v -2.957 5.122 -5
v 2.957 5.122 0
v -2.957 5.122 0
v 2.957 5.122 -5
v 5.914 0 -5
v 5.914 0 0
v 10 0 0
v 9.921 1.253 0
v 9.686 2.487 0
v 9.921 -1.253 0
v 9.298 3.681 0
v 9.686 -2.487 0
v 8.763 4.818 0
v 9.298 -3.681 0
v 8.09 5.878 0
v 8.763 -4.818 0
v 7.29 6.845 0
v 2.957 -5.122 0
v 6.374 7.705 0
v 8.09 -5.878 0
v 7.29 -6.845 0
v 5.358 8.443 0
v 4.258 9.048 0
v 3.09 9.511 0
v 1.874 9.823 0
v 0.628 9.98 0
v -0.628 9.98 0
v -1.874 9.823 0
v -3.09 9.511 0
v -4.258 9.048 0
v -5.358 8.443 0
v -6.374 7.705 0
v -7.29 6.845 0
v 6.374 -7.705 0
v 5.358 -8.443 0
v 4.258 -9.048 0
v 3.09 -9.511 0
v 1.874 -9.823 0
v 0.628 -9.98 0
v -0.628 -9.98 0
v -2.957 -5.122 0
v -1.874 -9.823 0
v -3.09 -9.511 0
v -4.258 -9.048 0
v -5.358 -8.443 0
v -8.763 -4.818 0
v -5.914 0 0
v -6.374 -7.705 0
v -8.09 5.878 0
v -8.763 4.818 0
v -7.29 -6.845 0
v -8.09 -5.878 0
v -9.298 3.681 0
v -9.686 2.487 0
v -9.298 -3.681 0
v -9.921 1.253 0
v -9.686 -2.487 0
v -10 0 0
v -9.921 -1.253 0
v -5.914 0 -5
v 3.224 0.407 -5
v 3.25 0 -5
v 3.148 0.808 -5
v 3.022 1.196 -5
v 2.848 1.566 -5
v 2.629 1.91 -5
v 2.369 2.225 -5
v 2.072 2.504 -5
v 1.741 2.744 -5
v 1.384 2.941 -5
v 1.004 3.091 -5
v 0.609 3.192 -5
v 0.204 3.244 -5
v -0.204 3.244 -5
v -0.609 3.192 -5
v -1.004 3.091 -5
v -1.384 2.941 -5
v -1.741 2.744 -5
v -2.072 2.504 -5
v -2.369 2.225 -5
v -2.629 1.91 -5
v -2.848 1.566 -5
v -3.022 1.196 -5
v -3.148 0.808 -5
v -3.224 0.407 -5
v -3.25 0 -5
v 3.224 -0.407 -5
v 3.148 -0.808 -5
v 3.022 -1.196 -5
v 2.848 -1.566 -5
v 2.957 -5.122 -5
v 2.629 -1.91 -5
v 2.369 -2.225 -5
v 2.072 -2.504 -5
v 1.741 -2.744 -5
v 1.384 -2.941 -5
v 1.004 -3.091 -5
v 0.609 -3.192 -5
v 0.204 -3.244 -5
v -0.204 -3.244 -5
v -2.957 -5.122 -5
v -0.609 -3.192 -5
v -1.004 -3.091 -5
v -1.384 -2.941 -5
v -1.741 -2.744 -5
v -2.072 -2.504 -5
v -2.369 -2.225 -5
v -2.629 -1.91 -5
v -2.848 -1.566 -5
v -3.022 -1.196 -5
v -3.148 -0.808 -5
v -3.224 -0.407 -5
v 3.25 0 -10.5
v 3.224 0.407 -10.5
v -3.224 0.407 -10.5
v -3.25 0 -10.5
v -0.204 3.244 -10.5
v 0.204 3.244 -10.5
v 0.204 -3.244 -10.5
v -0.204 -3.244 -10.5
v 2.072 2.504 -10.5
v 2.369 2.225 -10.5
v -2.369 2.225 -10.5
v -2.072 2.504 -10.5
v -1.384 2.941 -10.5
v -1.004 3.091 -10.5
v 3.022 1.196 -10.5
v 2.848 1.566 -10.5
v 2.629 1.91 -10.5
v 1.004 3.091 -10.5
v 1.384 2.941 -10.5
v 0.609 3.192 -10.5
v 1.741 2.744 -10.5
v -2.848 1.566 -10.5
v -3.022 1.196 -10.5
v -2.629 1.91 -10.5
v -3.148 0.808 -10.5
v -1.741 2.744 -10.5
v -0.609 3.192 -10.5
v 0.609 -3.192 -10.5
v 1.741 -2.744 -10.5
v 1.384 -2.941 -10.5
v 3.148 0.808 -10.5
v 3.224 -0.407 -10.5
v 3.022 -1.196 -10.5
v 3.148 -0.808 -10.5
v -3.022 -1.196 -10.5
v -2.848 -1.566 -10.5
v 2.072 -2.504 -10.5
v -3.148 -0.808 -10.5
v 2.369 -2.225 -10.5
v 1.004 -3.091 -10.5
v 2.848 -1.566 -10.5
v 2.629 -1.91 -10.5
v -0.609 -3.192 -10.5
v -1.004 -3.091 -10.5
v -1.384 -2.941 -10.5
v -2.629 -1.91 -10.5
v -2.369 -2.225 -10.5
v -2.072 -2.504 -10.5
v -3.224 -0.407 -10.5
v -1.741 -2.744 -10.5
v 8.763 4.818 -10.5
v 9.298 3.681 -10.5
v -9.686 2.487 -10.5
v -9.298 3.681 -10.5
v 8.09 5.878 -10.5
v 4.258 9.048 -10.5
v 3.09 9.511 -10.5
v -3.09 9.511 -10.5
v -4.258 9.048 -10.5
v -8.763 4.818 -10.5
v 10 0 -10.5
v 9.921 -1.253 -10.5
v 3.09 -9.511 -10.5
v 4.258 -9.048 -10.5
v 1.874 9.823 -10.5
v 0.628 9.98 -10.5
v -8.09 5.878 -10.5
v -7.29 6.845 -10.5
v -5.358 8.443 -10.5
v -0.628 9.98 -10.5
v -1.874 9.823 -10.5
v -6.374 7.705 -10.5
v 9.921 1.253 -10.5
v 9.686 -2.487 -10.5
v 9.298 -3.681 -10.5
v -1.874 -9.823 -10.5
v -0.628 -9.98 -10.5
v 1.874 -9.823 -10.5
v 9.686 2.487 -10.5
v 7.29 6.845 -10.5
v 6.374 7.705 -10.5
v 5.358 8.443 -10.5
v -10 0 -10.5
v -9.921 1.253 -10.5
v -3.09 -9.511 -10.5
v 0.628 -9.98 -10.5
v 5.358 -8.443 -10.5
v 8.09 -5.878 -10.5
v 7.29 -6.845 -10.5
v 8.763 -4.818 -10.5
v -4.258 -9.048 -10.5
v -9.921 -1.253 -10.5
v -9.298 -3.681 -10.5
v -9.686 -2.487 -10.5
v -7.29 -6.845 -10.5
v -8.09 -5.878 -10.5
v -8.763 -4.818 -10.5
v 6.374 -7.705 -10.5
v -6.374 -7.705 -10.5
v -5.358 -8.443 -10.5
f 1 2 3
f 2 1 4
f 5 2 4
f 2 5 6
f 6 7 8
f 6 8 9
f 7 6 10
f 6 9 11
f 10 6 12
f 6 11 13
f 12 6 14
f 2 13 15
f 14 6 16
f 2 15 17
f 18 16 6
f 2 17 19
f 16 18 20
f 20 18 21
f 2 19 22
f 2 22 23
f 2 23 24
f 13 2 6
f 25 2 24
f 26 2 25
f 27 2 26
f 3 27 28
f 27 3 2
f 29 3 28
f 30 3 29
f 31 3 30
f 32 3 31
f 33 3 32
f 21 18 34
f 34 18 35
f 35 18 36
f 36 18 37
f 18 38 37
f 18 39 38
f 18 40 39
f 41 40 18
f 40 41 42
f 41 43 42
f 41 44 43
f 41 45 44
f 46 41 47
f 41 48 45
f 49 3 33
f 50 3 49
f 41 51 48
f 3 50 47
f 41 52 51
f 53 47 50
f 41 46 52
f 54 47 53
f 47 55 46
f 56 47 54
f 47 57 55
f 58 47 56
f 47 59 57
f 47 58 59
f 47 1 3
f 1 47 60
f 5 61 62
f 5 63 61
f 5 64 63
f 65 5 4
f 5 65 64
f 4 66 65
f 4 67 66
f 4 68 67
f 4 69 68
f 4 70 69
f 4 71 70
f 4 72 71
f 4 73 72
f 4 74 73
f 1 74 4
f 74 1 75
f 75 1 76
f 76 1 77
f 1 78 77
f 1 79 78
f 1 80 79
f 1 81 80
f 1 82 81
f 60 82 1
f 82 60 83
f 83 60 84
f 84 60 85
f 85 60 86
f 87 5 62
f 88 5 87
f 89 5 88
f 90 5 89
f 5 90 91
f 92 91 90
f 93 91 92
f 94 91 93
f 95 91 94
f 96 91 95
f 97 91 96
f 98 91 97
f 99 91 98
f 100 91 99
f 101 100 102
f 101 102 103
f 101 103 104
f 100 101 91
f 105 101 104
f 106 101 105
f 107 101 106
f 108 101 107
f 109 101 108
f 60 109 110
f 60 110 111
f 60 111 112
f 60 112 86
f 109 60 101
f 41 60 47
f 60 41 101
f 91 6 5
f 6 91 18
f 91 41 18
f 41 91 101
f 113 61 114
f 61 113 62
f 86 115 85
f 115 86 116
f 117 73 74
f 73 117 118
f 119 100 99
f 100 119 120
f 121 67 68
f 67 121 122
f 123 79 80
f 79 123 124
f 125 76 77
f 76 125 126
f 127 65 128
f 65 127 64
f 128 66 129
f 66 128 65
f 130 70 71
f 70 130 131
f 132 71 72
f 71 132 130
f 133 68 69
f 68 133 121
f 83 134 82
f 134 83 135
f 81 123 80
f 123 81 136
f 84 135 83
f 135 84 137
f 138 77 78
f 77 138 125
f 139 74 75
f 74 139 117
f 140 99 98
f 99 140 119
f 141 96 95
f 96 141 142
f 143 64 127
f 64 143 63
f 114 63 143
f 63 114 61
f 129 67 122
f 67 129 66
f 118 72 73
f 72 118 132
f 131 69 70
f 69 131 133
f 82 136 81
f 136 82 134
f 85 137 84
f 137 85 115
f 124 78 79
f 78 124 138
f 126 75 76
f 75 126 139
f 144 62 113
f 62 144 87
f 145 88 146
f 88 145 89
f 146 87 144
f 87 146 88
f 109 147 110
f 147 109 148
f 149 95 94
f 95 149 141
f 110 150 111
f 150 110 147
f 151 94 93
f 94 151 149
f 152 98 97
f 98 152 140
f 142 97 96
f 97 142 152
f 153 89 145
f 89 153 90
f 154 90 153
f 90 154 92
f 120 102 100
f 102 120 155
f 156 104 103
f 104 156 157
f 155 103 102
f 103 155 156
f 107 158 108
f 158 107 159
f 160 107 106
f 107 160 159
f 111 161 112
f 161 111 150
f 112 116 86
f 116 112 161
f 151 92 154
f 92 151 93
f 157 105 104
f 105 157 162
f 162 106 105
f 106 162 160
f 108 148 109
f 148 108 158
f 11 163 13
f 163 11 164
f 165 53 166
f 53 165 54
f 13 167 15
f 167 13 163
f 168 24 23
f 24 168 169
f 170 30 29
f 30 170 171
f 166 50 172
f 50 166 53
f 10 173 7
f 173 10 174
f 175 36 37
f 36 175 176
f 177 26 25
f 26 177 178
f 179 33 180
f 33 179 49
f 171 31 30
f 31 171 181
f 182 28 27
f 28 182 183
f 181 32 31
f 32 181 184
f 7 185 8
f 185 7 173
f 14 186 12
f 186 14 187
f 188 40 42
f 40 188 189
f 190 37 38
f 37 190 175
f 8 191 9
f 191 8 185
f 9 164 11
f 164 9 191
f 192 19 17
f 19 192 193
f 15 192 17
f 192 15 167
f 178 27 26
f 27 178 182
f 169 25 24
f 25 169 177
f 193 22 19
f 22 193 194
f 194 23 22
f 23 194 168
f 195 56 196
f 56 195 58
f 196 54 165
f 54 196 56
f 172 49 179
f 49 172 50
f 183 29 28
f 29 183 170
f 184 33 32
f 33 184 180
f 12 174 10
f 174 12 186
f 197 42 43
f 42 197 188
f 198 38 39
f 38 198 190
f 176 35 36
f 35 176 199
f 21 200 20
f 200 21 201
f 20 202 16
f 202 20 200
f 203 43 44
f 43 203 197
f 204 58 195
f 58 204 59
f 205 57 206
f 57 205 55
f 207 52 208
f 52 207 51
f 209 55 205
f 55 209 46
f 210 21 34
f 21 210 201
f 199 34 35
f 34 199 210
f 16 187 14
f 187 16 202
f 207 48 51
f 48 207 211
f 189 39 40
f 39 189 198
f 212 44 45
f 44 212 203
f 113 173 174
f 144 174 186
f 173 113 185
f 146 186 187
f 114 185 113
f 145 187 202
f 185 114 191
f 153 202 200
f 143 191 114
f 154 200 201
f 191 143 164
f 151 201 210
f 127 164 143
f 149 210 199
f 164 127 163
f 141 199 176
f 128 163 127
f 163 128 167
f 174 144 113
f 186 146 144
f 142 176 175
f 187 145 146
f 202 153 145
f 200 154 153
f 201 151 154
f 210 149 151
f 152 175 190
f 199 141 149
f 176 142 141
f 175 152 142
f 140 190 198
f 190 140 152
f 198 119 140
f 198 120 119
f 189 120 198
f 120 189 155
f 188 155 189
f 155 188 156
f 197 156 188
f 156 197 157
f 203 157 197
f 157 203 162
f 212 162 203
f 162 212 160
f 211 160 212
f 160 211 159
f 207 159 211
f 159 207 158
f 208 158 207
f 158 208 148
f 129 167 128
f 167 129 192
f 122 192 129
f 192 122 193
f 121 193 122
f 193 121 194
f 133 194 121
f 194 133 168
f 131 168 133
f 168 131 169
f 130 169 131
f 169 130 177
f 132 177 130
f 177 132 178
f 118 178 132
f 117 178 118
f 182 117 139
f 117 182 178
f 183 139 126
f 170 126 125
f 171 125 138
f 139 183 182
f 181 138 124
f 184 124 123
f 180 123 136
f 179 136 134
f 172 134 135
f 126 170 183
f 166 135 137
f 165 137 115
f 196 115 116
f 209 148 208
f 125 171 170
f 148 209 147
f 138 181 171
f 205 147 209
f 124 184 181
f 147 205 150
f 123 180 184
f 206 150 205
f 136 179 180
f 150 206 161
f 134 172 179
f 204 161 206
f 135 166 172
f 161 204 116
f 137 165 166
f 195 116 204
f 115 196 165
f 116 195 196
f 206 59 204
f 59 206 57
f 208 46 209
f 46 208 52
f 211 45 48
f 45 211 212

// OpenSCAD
$fn = 50;

difference() {
	union() {
		translate(v = [0, 0, -10.5]) {
			cylinder(h = 10.5, r = 10.0);
		}
	}
	union() {
		translate(v = [0, 0, 0]) {
			rotate(a = [0, 0, 0]) {
				difference() {
					union() {
						translate(v = [0, 0, -5]) {
							linear_extrude(height = 5) {
								polygon(points = [[5.914249999999999, 0.0], [2.957125, 5.1218907443321156], [-2.9571249999999982, 5.1218907443321156], [-5.914249999999999, 7.242867331857232e-16], [-2.9571250000000022, -5.121890744332115], [2.9571249999999956, -5.121890744332118]]);
							}
						}
					}
					union();
				}
			}
		}
		#translate(v = [0, 0, -100.0]) {
			cylinder(h = 200, r = 3.25);
		}
	}
}
